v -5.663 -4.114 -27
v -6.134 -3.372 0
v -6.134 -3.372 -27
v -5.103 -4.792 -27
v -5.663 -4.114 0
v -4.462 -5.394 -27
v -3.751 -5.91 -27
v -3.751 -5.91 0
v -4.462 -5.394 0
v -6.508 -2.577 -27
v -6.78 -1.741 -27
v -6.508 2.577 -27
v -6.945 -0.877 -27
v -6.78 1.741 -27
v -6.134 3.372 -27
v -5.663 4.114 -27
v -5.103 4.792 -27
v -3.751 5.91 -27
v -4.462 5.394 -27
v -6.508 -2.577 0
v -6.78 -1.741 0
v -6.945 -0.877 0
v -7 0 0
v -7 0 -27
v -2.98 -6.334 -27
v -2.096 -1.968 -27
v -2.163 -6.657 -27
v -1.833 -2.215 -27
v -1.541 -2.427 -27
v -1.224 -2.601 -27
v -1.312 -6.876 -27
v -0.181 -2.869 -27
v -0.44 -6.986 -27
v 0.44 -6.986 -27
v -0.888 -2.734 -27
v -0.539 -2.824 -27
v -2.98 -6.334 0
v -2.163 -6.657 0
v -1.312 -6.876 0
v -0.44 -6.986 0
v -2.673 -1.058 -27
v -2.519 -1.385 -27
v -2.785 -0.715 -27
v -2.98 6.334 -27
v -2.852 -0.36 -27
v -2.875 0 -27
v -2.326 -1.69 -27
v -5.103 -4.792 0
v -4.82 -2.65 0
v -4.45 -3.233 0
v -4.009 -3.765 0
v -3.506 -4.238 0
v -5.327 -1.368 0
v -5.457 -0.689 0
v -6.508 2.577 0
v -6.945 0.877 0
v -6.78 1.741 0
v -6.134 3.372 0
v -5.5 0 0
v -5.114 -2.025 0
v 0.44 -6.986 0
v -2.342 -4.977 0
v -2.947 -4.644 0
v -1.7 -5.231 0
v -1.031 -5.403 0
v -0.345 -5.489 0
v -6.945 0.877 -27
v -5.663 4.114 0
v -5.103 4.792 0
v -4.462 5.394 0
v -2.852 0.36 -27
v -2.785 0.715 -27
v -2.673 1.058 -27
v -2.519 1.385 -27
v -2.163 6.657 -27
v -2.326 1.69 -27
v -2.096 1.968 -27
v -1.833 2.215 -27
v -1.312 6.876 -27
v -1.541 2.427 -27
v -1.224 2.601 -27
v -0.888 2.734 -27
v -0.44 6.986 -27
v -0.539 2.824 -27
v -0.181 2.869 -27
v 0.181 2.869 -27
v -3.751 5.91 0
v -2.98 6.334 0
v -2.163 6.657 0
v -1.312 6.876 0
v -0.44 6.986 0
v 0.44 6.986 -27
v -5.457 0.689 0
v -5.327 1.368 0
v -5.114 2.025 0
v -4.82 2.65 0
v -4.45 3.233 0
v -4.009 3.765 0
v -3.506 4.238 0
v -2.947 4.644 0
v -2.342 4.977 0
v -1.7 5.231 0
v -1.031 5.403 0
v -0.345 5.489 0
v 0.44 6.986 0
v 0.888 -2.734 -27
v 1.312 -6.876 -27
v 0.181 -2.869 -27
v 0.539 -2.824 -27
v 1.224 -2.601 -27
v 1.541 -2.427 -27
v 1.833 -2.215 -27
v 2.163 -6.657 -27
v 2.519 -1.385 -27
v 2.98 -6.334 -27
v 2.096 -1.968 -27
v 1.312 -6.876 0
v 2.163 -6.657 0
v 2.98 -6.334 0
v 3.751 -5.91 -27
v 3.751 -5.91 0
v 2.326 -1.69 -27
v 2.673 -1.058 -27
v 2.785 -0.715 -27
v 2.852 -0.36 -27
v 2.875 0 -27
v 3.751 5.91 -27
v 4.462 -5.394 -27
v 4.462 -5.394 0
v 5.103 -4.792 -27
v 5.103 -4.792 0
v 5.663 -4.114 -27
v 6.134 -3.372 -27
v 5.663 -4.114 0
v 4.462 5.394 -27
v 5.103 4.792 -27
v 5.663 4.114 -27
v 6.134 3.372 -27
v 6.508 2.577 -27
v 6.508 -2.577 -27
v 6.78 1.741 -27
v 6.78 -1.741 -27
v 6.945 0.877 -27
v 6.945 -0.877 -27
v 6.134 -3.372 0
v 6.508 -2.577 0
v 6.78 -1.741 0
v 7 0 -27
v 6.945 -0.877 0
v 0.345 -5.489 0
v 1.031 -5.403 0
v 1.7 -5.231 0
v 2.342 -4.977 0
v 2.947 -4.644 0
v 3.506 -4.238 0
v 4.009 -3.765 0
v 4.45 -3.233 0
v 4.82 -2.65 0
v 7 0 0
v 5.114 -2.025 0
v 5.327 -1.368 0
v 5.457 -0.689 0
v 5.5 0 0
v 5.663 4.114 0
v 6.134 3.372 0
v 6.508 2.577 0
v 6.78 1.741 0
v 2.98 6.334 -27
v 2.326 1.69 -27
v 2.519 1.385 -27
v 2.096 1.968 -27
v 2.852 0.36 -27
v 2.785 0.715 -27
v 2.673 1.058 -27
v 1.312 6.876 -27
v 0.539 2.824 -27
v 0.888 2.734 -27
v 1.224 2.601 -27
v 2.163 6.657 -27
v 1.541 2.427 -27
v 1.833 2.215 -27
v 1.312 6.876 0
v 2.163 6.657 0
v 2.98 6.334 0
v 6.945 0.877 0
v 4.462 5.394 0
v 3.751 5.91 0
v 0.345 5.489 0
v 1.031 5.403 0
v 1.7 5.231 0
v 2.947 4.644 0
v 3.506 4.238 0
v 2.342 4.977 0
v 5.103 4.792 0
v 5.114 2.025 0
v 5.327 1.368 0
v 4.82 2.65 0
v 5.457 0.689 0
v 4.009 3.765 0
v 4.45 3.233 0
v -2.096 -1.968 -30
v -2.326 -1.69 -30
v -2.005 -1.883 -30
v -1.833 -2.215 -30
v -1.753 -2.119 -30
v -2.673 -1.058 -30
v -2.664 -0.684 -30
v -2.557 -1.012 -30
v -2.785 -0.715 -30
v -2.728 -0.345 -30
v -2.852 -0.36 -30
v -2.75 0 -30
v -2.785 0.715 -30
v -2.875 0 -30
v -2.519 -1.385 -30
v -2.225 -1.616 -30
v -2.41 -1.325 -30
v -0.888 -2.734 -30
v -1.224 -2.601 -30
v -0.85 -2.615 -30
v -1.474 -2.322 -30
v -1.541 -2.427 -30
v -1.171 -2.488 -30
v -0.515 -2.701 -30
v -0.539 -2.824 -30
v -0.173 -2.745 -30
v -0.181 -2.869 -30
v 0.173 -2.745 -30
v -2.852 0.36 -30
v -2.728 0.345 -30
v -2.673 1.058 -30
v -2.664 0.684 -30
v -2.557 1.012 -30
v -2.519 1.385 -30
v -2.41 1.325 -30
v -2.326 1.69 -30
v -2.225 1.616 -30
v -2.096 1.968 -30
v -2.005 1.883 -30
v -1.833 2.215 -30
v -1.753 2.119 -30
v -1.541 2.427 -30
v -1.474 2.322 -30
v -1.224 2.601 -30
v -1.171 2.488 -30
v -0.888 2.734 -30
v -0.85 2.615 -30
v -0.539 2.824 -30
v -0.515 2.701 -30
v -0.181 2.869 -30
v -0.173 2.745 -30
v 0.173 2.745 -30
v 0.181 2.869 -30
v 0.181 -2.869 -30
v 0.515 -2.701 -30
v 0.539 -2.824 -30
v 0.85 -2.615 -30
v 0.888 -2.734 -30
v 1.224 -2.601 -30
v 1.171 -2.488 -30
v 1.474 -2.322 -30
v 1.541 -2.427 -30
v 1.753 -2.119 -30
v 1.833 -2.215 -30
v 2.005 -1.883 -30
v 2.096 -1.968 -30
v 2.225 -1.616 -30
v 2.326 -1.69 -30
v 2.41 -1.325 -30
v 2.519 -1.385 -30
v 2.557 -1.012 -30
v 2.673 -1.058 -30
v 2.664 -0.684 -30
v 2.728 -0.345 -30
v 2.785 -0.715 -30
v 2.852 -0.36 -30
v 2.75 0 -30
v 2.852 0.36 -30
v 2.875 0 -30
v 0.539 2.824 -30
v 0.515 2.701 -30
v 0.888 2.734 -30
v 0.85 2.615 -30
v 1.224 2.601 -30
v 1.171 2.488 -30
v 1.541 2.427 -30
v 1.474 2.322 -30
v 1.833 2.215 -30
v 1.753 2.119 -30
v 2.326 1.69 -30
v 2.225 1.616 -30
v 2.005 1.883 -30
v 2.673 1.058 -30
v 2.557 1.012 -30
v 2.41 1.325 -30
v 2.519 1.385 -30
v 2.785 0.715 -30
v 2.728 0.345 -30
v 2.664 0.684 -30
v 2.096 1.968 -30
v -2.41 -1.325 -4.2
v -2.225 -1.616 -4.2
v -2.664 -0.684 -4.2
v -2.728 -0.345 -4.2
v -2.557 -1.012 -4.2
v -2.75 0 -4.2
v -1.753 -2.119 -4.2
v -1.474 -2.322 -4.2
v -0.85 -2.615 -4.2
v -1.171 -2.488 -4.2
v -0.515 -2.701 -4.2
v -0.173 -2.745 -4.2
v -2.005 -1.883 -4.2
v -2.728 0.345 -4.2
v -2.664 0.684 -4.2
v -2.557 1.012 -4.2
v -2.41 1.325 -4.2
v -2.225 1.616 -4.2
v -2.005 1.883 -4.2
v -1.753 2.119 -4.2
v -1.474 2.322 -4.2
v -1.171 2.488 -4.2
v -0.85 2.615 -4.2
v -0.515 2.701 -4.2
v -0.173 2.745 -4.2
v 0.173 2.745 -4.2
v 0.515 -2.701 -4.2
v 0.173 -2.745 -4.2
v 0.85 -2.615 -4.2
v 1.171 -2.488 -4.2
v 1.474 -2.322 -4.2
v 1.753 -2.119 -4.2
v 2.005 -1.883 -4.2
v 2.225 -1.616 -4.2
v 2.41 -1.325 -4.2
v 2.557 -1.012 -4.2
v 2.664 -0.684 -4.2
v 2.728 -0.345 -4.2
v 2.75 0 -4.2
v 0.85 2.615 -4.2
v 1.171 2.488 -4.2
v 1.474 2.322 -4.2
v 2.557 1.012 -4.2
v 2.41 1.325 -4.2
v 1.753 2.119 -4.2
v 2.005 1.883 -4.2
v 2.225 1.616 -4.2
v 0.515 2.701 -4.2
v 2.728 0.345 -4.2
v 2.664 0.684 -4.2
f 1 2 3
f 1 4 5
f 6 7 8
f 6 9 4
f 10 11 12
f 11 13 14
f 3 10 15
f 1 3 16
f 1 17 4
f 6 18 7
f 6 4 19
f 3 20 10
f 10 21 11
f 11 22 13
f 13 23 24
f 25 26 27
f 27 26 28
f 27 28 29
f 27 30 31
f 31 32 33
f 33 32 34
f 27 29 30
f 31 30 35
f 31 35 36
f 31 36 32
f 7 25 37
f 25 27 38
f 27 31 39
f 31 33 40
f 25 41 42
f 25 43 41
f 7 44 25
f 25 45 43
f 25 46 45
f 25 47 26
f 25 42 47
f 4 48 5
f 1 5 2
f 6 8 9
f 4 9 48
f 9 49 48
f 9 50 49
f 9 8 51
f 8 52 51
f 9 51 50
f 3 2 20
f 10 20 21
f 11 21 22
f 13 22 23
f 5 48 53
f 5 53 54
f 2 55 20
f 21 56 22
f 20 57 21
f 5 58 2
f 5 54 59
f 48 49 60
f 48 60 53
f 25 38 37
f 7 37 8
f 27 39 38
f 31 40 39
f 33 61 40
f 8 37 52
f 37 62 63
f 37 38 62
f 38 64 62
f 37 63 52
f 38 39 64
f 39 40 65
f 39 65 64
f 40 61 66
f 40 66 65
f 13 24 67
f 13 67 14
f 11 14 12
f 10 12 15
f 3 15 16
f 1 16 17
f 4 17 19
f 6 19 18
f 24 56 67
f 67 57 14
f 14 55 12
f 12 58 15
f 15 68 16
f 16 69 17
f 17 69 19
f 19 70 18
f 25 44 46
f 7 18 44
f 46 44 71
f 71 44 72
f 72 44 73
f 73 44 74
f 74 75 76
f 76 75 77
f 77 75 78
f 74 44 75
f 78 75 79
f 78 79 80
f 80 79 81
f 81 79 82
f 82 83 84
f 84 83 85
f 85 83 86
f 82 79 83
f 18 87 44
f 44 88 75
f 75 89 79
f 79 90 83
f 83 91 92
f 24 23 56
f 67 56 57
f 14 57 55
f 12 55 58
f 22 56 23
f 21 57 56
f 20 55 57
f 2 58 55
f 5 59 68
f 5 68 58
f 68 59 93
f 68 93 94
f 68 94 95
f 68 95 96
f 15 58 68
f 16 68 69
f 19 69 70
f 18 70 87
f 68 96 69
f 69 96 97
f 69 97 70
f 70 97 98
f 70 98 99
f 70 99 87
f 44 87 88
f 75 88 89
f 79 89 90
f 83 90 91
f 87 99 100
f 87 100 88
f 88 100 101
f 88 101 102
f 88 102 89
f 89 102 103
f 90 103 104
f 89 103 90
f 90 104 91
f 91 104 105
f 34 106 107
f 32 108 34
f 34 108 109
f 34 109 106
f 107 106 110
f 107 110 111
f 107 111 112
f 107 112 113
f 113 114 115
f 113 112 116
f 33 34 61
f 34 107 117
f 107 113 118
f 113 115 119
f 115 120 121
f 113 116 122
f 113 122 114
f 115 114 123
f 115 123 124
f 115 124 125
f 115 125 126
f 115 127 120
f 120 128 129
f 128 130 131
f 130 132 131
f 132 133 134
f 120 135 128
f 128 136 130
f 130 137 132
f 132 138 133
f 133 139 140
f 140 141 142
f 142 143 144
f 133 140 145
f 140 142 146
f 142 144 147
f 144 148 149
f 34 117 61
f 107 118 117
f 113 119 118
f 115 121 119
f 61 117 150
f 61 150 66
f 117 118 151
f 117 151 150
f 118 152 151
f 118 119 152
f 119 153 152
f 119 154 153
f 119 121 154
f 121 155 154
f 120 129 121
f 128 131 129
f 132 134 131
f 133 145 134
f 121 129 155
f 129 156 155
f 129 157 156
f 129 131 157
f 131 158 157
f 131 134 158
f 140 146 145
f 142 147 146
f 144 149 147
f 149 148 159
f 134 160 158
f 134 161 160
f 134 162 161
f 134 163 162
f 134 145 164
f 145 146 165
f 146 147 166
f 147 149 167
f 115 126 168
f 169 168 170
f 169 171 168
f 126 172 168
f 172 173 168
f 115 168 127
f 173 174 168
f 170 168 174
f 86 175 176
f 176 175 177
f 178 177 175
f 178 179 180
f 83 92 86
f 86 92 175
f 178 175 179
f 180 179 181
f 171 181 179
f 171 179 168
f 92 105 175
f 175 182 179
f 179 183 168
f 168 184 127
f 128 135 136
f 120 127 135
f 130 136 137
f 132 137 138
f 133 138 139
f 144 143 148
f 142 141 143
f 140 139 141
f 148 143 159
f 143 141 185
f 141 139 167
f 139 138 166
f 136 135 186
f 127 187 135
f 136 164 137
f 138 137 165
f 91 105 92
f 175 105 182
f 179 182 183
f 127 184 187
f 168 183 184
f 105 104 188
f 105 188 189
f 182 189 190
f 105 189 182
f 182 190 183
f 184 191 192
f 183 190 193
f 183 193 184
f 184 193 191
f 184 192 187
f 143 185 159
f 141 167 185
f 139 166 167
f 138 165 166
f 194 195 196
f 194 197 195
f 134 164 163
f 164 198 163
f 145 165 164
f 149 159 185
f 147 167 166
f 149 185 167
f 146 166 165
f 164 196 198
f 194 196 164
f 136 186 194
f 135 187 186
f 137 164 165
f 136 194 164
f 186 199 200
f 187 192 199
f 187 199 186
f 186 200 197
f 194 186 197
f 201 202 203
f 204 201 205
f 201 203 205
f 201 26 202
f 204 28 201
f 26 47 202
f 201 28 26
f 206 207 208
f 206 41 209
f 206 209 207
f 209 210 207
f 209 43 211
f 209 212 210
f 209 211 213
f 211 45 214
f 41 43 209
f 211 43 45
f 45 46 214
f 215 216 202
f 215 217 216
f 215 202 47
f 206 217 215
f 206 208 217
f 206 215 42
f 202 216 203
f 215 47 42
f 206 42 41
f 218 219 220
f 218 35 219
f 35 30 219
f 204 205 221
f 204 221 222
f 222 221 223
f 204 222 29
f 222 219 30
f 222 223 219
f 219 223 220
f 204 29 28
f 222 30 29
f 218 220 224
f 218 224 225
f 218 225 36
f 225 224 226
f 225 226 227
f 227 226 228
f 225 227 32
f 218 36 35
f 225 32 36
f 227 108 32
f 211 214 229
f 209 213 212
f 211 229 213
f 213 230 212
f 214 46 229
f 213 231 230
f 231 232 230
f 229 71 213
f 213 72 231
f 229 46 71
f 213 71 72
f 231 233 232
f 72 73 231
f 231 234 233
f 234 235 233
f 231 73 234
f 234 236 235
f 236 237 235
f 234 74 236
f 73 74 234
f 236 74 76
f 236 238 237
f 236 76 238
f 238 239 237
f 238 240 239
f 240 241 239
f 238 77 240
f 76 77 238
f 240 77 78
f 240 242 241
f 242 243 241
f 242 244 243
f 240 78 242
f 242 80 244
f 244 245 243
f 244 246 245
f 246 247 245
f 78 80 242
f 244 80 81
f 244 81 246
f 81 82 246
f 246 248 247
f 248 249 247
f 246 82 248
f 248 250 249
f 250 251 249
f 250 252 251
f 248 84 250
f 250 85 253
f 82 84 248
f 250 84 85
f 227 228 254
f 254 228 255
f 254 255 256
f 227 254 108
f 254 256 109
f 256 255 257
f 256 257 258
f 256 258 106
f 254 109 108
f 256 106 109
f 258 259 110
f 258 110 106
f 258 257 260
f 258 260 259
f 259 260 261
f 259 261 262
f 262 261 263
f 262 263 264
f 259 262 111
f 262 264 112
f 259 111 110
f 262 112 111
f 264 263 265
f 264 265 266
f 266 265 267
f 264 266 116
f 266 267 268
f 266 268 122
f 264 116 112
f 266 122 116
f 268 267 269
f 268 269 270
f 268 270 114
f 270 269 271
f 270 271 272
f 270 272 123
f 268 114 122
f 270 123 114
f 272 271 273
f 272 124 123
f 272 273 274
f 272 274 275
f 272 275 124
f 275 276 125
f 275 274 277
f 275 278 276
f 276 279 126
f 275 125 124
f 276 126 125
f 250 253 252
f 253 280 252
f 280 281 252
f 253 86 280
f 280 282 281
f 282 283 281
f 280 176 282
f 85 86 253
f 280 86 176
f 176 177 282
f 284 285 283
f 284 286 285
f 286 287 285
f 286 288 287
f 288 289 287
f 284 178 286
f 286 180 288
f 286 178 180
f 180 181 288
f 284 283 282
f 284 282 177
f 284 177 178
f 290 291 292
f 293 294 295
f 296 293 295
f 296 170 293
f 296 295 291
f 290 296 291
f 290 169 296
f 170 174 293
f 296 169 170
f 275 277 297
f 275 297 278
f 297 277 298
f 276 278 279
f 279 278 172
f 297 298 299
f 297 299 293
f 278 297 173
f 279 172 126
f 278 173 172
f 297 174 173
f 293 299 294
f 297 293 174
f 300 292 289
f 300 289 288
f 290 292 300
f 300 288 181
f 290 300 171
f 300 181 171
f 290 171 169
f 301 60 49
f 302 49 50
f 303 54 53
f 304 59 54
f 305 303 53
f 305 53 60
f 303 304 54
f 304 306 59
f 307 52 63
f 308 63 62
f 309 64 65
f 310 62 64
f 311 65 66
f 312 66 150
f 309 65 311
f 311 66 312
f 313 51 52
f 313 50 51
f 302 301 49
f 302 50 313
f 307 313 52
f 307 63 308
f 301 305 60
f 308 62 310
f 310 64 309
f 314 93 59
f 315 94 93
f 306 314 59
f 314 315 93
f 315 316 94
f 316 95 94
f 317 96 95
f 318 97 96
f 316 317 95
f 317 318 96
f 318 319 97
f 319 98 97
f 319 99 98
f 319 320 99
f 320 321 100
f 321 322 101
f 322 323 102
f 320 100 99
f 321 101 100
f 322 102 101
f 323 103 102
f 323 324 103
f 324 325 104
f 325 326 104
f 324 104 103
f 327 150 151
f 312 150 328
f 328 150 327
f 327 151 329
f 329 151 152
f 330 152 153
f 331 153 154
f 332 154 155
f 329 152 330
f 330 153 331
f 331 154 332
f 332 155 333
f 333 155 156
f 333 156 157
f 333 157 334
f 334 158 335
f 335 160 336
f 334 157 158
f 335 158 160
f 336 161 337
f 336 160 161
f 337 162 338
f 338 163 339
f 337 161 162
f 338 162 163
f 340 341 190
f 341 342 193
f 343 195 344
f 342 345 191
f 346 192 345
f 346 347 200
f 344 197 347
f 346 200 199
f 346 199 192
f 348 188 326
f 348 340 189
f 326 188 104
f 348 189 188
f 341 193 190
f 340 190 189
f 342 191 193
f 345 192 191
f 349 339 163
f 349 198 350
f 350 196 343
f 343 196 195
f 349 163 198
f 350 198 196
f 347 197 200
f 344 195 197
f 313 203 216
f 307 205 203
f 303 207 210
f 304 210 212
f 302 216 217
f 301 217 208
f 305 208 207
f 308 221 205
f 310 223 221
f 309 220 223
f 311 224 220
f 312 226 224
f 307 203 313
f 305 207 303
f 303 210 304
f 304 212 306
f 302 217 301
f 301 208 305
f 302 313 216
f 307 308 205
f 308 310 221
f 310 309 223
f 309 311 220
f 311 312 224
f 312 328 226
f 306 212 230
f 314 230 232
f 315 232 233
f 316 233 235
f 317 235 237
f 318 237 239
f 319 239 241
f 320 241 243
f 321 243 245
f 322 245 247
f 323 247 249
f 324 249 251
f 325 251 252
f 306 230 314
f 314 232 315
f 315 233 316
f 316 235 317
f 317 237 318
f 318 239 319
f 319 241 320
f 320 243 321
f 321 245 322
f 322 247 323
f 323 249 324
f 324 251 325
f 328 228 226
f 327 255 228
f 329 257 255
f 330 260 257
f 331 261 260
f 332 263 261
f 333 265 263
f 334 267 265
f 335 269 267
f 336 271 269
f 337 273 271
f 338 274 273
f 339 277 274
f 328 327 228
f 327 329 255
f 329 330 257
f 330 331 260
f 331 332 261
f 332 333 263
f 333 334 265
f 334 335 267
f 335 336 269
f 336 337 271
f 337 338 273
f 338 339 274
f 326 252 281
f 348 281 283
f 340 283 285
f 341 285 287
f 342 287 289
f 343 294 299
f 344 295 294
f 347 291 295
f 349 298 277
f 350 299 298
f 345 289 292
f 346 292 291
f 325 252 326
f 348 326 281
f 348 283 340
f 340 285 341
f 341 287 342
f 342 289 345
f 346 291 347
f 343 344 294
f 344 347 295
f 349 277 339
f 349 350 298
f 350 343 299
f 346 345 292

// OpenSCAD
$fn = 50;

difference() {
	union() {
		translate(v = [0, 0, -27.0]) {
			cylinder(h = 27, r = 7.0);
		}
		#translate(v = [0, 0, -30.0]) {
			cylinder(h = 30, r = 2.875);
		}
	}
	union() {
		translate(v = [0, 0, 0]) {
			rotate(a = [0, 0, 0]) {
				difference() {
					union() {
						translate(v = [0, 0, -30.0]) {
							cylinder(h = 30, r = 2.25);
						}
						translate(v = [0, 0, -4.2]) {
							cylinder(h = 4.2, r1 = 2.75, r2 = 5.5);
						}
						translate(v = [0, 0, -30.0]) {
							cylinder(h = 30, r = 2.75);
						}
						translate(v = [0, 0, -30.0]) {
							cylinder(h = 30, r = 2.25);
						}
					}
					union();
				}
			}
		}
	}
}
